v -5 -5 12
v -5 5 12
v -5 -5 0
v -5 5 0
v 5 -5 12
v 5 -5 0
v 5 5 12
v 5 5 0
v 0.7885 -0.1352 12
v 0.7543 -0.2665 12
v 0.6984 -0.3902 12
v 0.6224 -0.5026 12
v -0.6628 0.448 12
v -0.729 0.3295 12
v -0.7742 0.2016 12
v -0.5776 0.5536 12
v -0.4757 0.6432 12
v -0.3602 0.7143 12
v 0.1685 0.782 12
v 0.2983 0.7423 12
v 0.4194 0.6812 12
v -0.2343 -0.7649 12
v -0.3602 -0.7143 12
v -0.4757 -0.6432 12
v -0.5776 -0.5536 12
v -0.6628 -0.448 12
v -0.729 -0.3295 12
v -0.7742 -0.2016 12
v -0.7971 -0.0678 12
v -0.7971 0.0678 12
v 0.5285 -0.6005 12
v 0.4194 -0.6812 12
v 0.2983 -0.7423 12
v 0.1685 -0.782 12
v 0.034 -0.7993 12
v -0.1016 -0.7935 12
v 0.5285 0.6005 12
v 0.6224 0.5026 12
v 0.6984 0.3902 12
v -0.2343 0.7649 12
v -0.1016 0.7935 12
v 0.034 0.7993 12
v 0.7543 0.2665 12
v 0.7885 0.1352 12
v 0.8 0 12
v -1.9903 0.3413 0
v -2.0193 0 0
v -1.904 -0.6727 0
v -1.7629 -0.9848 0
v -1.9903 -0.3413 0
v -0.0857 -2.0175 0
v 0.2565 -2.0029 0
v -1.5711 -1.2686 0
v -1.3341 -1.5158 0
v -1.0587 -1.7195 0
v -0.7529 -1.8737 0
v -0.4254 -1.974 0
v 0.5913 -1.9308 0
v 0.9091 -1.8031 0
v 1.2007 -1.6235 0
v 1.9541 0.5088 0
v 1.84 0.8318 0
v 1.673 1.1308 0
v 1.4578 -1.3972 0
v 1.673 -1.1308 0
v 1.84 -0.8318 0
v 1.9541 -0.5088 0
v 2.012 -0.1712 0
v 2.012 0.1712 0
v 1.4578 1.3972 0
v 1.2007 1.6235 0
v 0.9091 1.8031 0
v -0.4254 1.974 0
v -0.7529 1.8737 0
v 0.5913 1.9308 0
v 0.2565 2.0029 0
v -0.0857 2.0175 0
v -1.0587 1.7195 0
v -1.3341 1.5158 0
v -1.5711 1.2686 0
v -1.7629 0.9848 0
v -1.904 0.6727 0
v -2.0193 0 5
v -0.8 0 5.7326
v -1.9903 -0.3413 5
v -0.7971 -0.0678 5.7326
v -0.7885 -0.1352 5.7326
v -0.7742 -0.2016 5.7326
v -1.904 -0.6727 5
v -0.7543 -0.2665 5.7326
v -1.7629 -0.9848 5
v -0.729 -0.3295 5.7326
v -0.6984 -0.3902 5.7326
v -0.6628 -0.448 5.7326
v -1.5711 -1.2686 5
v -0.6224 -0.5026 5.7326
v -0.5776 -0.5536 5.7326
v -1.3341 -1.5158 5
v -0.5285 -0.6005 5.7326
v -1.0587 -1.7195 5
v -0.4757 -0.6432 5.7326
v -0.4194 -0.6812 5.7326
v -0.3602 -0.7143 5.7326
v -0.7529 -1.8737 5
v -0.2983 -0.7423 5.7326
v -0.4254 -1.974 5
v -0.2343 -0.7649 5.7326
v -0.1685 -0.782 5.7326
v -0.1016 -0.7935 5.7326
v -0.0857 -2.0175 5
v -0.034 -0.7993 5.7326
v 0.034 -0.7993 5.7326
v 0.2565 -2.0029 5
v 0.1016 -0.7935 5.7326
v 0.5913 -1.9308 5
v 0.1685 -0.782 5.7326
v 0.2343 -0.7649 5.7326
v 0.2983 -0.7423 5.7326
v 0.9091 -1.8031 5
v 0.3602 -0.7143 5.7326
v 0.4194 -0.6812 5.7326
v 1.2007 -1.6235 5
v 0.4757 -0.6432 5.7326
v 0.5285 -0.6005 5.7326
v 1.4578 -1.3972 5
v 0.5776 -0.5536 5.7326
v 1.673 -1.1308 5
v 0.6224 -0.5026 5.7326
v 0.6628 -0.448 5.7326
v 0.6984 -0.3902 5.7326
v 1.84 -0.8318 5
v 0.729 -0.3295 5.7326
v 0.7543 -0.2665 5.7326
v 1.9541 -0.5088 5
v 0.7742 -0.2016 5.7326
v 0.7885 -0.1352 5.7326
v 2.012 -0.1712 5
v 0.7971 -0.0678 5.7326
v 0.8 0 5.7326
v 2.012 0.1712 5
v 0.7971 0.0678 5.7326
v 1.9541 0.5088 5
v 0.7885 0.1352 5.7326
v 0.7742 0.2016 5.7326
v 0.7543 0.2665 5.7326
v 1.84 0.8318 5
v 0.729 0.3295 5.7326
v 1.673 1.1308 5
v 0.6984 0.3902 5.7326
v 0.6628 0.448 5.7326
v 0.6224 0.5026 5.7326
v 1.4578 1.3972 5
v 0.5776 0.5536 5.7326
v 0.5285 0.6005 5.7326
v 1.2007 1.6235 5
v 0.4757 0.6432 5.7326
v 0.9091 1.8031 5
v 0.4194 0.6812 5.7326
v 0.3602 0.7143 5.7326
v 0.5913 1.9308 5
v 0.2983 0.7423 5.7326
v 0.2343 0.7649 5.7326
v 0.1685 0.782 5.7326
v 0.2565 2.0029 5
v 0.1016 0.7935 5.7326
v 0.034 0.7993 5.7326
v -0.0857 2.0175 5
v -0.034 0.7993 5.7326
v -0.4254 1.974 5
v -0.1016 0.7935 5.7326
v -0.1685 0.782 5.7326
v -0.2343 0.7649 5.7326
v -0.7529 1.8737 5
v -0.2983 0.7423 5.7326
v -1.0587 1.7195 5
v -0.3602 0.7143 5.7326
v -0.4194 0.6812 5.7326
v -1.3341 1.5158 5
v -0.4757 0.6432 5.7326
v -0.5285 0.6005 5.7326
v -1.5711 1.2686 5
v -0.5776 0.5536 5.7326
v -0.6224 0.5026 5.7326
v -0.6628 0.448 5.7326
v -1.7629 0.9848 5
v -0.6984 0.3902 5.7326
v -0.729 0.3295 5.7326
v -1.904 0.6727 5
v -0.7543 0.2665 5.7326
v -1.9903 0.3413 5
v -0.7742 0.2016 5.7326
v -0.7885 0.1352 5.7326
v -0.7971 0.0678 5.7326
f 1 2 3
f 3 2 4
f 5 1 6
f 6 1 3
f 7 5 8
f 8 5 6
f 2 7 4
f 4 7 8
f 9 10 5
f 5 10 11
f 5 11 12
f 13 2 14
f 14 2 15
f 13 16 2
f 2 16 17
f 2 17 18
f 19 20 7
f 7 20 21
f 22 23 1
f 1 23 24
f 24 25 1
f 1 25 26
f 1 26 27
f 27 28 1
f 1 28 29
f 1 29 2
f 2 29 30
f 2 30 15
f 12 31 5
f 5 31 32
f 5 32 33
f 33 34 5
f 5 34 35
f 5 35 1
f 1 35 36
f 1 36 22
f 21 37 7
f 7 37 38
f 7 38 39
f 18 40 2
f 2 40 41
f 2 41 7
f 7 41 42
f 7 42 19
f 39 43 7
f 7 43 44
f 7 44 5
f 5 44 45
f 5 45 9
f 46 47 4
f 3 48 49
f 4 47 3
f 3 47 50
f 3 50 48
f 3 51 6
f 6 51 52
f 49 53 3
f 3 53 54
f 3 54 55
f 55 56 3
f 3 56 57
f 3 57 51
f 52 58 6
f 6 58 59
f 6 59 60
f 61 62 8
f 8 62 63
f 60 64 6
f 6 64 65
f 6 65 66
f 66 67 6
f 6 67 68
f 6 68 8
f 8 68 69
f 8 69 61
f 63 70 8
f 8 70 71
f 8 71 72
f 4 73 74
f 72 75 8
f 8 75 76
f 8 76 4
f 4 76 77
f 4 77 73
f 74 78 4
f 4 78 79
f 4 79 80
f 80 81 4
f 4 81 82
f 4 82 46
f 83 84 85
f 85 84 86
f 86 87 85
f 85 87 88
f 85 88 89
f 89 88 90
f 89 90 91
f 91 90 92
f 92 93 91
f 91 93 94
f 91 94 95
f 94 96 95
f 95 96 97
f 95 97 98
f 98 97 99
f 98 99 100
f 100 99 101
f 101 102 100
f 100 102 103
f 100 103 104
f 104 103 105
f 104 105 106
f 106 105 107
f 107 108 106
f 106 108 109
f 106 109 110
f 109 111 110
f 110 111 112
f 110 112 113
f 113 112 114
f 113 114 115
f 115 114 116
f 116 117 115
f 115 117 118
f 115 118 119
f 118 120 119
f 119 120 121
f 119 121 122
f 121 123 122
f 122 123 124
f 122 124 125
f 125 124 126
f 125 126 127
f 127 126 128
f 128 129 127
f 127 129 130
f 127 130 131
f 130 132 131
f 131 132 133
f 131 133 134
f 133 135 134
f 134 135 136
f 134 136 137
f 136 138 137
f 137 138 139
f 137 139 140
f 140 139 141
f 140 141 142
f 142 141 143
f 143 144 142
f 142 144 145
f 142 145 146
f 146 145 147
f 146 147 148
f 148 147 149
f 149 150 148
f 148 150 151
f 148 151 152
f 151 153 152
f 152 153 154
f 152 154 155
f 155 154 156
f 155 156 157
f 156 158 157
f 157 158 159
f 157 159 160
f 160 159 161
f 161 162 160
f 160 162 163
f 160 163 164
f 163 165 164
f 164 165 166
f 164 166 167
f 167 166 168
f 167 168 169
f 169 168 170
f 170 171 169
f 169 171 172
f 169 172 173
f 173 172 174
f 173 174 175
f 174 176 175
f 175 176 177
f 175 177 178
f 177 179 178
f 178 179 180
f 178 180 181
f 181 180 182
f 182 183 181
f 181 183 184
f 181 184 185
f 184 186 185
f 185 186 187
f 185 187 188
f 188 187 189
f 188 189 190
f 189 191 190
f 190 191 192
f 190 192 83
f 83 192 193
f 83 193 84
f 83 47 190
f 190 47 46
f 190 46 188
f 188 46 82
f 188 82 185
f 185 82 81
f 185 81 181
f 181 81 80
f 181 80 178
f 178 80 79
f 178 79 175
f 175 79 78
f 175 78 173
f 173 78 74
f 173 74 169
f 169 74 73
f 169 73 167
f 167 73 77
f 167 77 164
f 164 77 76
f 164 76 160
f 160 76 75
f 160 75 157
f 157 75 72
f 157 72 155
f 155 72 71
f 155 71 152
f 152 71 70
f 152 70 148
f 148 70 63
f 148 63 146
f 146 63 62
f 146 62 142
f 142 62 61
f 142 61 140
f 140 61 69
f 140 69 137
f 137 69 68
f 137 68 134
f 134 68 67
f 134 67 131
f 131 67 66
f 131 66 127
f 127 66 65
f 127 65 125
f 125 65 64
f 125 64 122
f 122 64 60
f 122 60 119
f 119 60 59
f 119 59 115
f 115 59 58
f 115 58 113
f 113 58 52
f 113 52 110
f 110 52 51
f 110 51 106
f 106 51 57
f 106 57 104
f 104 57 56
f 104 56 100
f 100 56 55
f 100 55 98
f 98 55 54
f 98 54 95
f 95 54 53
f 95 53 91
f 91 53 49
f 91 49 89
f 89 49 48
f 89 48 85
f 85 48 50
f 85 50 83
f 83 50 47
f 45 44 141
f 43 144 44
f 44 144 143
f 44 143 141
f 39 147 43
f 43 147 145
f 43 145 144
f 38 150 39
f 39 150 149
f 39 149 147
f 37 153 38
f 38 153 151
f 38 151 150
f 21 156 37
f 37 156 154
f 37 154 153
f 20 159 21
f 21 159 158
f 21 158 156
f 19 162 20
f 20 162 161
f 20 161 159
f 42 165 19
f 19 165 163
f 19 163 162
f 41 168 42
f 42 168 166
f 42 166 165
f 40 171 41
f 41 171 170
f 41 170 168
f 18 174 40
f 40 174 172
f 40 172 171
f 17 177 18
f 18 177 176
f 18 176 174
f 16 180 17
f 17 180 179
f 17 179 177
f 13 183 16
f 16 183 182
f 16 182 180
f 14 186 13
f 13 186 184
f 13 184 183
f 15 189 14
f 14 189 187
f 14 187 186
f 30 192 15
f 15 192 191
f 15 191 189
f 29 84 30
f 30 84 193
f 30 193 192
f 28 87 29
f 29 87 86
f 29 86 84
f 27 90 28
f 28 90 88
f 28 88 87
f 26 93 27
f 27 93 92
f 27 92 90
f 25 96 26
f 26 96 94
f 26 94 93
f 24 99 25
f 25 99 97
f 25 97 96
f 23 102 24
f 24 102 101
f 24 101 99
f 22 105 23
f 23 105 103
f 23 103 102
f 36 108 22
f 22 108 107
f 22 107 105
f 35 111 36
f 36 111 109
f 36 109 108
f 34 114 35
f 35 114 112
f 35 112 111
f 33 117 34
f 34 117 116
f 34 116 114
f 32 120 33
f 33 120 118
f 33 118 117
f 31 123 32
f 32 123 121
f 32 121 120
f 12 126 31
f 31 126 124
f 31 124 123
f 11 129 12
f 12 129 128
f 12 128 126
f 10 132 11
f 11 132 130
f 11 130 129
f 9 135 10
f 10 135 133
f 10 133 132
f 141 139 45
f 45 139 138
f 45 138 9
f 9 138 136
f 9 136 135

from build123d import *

# Parameters (mm, degrees)
SKETCH1_W                  = 10
SKETCH1_H                  = 10
BOSS_EXTRUDE1_DEPTH        = 12
F_10_32_TAPPED_HOLE1_D     = 4.0386
F_10_32_TAPPED_HOLE1_DEPTH = 5
F_10_32_TAPPED_HOLE1_TIP   = 1.213317848
M2X0_4_TAPPED_HOLE1_D      = 1.6
M2X0_4_TAPPED_HOLE1_DEPTH  = 7
M2X0_4_TAPPED_HOLE1_TIP    = 0.480688495


with BuildPart() as part:
    # Sketch1 → Boss-Extrude1 (new body)
    with BuildSketch(Plane.XY):
        Rectangle(SKETCH1_W, SKETCH1_H)
    extrude(amount=BOSS_EXTRUDE1_DEPTH)

    # #10-32 Tapped Hole1
    with Locations(Plane(origin=(0, 0, 0), x_dir=(1, 0, 0), z_dir=(0, 0, -1))):
        with Locations((0, 0)):
            Hole(F_10_32_TAPPED_HOLE1_D / 2, depth=F_10_32_TAPPED_HOLE1_DEPTH)
            with Locations((0, 0, -(F_10_32_TAPPED_HOLE1_DEPTH + F_10_32_TAPPED_HOLE1_TIP / 2))):  # 118° drill point
                Cone(0, F_10_32_TAPPED_HOLE1_D / 2, F_10_32_TAPPED_HOLE1_TIP, mode=Mode.SUBTRACT)

    # M2x0.4 Tapped Hole1
    with Locations(Plane.XY.offset(12)):
        with Locations((0, 0)):
            Hole(M2X0_4_TAPPED_HOLE1_D / 2, depth=M2X0_4_TAPPED_HOLE1_DEPTH)
            with Locations((0, 0, -(M2X0_4_TAPPED_HOLE1_DEPTH + M2X0_4_TAPPED_HOLE1_TIP / 2))):  # 118° drill point
                Cone(0, M2X0_4_TAPPED_HOLE1_D / 2, M2X0_4_TAPPED_HOLE1_TIP, mode=Mode.SUBTRACT)


solid = part.part
